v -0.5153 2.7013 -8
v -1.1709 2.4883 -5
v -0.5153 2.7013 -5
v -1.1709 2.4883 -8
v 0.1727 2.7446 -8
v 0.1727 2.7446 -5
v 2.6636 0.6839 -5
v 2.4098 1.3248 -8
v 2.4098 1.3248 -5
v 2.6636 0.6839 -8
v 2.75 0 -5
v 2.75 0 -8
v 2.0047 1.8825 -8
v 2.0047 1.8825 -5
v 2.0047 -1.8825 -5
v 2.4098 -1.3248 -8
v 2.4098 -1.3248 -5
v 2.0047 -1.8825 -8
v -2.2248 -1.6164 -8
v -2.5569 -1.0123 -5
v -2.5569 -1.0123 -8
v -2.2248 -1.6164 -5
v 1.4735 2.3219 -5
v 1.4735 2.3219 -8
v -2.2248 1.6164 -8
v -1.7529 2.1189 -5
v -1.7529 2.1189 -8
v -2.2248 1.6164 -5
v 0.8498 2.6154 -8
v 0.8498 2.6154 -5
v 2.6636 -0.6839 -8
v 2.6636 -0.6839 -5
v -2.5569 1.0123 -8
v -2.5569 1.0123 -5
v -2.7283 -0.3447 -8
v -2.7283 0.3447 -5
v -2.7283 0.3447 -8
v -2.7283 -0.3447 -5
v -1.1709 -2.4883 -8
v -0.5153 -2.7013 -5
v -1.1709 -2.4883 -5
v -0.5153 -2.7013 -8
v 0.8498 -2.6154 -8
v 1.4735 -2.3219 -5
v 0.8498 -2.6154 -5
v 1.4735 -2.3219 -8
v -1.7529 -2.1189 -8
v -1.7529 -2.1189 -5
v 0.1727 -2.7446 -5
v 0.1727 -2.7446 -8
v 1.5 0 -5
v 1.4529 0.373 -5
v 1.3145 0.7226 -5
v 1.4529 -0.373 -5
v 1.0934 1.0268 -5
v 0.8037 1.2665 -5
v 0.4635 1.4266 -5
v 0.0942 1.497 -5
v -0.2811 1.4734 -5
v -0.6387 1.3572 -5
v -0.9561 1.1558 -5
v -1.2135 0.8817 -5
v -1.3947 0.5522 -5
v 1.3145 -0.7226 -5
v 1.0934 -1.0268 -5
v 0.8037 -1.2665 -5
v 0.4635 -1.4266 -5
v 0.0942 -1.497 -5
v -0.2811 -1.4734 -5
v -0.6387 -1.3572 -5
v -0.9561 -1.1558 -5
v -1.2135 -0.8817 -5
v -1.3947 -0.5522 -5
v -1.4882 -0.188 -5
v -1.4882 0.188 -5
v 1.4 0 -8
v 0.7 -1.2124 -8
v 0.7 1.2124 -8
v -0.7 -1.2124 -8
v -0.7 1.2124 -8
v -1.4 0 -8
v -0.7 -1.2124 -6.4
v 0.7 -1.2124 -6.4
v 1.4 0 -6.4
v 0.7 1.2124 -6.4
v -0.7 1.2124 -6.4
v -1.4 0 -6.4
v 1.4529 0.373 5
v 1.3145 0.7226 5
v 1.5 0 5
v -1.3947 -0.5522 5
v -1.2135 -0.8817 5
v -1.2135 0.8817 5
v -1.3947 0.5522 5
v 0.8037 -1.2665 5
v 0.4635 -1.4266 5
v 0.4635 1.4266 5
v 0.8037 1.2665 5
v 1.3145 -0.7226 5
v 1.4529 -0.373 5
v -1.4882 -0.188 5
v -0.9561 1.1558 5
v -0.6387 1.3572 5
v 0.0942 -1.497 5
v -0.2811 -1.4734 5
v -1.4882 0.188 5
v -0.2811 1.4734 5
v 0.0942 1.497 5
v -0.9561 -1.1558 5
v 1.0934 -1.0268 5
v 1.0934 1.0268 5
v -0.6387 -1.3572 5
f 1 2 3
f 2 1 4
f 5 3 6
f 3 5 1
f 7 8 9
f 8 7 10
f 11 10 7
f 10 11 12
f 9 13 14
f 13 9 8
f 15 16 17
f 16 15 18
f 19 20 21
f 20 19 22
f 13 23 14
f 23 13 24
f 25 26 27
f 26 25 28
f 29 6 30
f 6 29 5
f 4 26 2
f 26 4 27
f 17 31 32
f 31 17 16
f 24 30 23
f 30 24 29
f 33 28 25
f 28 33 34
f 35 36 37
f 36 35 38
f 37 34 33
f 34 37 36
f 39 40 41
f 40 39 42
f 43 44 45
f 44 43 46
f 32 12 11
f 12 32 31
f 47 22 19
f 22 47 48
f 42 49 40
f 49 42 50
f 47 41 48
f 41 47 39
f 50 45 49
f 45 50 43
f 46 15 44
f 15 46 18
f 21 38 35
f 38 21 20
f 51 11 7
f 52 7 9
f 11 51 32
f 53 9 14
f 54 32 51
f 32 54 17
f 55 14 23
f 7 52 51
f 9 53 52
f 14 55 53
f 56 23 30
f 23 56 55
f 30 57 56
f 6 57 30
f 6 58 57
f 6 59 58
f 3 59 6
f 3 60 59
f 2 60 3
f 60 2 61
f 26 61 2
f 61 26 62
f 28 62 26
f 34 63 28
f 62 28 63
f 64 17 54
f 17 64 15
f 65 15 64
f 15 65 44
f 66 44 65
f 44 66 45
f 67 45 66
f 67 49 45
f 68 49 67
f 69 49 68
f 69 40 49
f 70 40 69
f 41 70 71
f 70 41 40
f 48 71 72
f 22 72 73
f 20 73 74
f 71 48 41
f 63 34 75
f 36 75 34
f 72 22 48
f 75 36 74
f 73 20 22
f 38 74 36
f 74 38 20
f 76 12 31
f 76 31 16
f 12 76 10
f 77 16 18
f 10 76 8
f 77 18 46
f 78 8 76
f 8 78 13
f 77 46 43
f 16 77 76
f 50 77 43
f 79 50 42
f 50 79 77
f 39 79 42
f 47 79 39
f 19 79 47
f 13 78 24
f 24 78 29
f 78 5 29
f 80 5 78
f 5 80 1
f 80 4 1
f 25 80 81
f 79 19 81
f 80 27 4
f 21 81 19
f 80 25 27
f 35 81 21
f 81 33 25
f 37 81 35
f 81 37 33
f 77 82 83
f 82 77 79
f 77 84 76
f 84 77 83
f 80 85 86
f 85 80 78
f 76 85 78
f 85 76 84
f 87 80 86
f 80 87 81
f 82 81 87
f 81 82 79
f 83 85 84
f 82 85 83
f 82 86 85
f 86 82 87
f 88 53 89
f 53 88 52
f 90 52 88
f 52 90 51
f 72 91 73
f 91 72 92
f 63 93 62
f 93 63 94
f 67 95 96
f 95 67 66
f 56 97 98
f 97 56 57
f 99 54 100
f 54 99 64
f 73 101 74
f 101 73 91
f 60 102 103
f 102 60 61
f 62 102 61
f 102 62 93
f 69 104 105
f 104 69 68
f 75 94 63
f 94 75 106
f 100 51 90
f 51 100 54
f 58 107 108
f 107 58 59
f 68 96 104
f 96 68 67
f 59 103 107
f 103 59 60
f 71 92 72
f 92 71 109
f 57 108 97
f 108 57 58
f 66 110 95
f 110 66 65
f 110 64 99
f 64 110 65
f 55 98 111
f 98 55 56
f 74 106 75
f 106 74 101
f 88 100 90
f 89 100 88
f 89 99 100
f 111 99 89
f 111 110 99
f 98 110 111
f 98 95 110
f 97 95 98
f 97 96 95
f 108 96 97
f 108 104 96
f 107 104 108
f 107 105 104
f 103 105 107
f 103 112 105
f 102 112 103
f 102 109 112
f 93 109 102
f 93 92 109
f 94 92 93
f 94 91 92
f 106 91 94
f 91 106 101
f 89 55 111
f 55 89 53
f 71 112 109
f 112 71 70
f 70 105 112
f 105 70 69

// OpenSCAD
// file: lib/screw_nuts.scad
$fn=25;

module screw_m3(h=20, button=false){
    cylinder(d=3, h=h, center=true);
    translate([0, 0, -h/2-1.5])
        difference(){
            cylinder(d=5.5, h=3, center=true);
            translate([0, 0, -0.8])
                cylinder(d=2.8, h=1.8, $fn=6, center=true);
        }
}

module screw_m4(h=20, button=false){
    cylinder(d=4, h=h, center=true);
    translate([0, 0, -h/2-2])
        difference(){
            if (button) {
                translate([0, 0, 2])
                    scale([1, 1, 6/7.5])
                    sphere(d=7.5);
            } else {
                cylinder(d=7, h=4, center=true);
            }
            if (button) {
                 translate([0, 0, 5])
                    cube([7.6, 7.6, 6], center=true);
            }
            translate([0, 0, -0.8])
                cylinder(d=3.5, h=2.5, $fn=6, center=true);
        }
}

module nut_m3(){
    difference(){
        cylinder(d=6, h=2.4, $fn=6);
        translate([0, 0, -0.05])
            cylinder(d=3, h=2.5);
    }
}

module nut_m4(){
    difference(){
        cylinder(d=7.6, h=3.2, $fn=6);
        translate([0, 0, -0.05])
            cylinder(d=4, h=3.3);
    }
}

module washer_m3(h){
    difference(){
        cylinder(d=8, h=h, center=true);
        cylinder(d=3.4, h=h+0.1, center=true);
    }
}

module washer_m5(h){
    difference(){
        cylinder(d=8, h=h, center=true);
        cylinder(d=5.4, h=h+0.1, center=true);
    }
}
// main file
// NAME: Screw M3x10
// COLOR: 80
// CATEGORY: Support

include <lib/screw_nuts.scad>

color("silver")
    screw_m3(10);
